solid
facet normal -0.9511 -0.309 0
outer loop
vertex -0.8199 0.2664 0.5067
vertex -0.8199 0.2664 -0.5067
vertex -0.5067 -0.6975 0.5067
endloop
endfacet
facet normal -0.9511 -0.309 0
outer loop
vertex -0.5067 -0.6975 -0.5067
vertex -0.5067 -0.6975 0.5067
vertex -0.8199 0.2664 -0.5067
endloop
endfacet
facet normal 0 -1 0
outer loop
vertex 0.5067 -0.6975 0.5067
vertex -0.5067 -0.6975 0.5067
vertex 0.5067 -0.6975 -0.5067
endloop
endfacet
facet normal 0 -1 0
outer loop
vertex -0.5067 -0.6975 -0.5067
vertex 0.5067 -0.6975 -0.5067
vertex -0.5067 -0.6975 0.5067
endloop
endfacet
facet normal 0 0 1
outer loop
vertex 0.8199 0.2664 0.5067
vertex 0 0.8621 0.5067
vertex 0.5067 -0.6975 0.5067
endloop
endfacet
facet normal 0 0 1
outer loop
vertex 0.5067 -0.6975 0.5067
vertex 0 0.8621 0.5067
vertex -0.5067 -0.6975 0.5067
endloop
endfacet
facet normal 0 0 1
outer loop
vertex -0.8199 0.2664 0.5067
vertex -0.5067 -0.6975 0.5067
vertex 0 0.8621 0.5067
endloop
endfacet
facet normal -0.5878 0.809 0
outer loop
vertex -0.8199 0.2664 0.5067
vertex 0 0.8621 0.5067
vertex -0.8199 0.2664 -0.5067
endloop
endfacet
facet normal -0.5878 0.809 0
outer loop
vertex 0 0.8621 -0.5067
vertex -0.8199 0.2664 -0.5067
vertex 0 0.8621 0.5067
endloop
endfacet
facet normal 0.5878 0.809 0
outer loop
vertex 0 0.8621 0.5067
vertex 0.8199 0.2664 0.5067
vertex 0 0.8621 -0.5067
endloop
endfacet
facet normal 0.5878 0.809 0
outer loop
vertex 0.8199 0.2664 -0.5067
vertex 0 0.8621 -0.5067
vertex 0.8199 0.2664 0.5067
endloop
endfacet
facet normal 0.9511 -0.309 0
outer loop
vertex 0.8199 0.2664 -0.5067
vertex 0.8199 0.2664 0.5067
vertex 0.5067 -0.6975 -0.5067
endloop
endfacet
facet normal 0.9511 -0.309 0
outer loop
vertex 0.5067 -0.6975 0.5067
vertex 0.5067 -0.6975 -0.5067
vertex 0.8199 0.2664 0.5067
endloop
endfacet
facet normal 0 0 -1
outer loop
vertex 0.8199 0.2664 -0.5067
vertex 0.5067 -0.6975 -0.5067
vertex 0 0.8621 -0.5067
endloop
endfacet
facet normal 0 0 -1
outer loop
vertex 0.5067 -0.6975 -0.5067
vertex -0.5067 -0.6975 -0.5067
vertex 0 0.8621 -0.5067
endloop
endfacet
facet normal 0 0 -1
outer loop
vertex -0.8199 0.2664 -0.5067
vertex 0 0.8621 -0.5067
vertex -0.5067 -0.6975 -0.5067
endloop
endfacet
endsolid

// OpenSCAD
polyhedron( points = [[-0.506731853988241, -0.697456562336935, 0.506731853939067], [-0.819909362898291, 0.266404701225775, 0.506731853939067], [3.90496132257779e-11, 0.86210372237455, 0.506731853939067], [0.819909362869413, 0.266404701078531, 0.506731853939067], [0.506731853911518, -0.697456562336935, 0.506731853939067], [-0.50673185394274, -0.697456562274308, -0.506731853960692], [-0.819909362847497, 0.266404701272114, -0.506731853852563], [3.90496132257779e-11, 0.862103722297142, -0.506731853960692], [0.819909362906222, 0.266404700974374, -0.50673185391519], [0.506731853911518, -0.697456562274308, -0.506731854006196]], faces = [[0, 1, 6, 5], [0, 5, 9, 4], [0, 4, 3, 2, 1], [1, 2, 7, 6], [2, 3, 8, 7], [3, 4, 9, 8], [5, 6, 7, 8, 9]]);
